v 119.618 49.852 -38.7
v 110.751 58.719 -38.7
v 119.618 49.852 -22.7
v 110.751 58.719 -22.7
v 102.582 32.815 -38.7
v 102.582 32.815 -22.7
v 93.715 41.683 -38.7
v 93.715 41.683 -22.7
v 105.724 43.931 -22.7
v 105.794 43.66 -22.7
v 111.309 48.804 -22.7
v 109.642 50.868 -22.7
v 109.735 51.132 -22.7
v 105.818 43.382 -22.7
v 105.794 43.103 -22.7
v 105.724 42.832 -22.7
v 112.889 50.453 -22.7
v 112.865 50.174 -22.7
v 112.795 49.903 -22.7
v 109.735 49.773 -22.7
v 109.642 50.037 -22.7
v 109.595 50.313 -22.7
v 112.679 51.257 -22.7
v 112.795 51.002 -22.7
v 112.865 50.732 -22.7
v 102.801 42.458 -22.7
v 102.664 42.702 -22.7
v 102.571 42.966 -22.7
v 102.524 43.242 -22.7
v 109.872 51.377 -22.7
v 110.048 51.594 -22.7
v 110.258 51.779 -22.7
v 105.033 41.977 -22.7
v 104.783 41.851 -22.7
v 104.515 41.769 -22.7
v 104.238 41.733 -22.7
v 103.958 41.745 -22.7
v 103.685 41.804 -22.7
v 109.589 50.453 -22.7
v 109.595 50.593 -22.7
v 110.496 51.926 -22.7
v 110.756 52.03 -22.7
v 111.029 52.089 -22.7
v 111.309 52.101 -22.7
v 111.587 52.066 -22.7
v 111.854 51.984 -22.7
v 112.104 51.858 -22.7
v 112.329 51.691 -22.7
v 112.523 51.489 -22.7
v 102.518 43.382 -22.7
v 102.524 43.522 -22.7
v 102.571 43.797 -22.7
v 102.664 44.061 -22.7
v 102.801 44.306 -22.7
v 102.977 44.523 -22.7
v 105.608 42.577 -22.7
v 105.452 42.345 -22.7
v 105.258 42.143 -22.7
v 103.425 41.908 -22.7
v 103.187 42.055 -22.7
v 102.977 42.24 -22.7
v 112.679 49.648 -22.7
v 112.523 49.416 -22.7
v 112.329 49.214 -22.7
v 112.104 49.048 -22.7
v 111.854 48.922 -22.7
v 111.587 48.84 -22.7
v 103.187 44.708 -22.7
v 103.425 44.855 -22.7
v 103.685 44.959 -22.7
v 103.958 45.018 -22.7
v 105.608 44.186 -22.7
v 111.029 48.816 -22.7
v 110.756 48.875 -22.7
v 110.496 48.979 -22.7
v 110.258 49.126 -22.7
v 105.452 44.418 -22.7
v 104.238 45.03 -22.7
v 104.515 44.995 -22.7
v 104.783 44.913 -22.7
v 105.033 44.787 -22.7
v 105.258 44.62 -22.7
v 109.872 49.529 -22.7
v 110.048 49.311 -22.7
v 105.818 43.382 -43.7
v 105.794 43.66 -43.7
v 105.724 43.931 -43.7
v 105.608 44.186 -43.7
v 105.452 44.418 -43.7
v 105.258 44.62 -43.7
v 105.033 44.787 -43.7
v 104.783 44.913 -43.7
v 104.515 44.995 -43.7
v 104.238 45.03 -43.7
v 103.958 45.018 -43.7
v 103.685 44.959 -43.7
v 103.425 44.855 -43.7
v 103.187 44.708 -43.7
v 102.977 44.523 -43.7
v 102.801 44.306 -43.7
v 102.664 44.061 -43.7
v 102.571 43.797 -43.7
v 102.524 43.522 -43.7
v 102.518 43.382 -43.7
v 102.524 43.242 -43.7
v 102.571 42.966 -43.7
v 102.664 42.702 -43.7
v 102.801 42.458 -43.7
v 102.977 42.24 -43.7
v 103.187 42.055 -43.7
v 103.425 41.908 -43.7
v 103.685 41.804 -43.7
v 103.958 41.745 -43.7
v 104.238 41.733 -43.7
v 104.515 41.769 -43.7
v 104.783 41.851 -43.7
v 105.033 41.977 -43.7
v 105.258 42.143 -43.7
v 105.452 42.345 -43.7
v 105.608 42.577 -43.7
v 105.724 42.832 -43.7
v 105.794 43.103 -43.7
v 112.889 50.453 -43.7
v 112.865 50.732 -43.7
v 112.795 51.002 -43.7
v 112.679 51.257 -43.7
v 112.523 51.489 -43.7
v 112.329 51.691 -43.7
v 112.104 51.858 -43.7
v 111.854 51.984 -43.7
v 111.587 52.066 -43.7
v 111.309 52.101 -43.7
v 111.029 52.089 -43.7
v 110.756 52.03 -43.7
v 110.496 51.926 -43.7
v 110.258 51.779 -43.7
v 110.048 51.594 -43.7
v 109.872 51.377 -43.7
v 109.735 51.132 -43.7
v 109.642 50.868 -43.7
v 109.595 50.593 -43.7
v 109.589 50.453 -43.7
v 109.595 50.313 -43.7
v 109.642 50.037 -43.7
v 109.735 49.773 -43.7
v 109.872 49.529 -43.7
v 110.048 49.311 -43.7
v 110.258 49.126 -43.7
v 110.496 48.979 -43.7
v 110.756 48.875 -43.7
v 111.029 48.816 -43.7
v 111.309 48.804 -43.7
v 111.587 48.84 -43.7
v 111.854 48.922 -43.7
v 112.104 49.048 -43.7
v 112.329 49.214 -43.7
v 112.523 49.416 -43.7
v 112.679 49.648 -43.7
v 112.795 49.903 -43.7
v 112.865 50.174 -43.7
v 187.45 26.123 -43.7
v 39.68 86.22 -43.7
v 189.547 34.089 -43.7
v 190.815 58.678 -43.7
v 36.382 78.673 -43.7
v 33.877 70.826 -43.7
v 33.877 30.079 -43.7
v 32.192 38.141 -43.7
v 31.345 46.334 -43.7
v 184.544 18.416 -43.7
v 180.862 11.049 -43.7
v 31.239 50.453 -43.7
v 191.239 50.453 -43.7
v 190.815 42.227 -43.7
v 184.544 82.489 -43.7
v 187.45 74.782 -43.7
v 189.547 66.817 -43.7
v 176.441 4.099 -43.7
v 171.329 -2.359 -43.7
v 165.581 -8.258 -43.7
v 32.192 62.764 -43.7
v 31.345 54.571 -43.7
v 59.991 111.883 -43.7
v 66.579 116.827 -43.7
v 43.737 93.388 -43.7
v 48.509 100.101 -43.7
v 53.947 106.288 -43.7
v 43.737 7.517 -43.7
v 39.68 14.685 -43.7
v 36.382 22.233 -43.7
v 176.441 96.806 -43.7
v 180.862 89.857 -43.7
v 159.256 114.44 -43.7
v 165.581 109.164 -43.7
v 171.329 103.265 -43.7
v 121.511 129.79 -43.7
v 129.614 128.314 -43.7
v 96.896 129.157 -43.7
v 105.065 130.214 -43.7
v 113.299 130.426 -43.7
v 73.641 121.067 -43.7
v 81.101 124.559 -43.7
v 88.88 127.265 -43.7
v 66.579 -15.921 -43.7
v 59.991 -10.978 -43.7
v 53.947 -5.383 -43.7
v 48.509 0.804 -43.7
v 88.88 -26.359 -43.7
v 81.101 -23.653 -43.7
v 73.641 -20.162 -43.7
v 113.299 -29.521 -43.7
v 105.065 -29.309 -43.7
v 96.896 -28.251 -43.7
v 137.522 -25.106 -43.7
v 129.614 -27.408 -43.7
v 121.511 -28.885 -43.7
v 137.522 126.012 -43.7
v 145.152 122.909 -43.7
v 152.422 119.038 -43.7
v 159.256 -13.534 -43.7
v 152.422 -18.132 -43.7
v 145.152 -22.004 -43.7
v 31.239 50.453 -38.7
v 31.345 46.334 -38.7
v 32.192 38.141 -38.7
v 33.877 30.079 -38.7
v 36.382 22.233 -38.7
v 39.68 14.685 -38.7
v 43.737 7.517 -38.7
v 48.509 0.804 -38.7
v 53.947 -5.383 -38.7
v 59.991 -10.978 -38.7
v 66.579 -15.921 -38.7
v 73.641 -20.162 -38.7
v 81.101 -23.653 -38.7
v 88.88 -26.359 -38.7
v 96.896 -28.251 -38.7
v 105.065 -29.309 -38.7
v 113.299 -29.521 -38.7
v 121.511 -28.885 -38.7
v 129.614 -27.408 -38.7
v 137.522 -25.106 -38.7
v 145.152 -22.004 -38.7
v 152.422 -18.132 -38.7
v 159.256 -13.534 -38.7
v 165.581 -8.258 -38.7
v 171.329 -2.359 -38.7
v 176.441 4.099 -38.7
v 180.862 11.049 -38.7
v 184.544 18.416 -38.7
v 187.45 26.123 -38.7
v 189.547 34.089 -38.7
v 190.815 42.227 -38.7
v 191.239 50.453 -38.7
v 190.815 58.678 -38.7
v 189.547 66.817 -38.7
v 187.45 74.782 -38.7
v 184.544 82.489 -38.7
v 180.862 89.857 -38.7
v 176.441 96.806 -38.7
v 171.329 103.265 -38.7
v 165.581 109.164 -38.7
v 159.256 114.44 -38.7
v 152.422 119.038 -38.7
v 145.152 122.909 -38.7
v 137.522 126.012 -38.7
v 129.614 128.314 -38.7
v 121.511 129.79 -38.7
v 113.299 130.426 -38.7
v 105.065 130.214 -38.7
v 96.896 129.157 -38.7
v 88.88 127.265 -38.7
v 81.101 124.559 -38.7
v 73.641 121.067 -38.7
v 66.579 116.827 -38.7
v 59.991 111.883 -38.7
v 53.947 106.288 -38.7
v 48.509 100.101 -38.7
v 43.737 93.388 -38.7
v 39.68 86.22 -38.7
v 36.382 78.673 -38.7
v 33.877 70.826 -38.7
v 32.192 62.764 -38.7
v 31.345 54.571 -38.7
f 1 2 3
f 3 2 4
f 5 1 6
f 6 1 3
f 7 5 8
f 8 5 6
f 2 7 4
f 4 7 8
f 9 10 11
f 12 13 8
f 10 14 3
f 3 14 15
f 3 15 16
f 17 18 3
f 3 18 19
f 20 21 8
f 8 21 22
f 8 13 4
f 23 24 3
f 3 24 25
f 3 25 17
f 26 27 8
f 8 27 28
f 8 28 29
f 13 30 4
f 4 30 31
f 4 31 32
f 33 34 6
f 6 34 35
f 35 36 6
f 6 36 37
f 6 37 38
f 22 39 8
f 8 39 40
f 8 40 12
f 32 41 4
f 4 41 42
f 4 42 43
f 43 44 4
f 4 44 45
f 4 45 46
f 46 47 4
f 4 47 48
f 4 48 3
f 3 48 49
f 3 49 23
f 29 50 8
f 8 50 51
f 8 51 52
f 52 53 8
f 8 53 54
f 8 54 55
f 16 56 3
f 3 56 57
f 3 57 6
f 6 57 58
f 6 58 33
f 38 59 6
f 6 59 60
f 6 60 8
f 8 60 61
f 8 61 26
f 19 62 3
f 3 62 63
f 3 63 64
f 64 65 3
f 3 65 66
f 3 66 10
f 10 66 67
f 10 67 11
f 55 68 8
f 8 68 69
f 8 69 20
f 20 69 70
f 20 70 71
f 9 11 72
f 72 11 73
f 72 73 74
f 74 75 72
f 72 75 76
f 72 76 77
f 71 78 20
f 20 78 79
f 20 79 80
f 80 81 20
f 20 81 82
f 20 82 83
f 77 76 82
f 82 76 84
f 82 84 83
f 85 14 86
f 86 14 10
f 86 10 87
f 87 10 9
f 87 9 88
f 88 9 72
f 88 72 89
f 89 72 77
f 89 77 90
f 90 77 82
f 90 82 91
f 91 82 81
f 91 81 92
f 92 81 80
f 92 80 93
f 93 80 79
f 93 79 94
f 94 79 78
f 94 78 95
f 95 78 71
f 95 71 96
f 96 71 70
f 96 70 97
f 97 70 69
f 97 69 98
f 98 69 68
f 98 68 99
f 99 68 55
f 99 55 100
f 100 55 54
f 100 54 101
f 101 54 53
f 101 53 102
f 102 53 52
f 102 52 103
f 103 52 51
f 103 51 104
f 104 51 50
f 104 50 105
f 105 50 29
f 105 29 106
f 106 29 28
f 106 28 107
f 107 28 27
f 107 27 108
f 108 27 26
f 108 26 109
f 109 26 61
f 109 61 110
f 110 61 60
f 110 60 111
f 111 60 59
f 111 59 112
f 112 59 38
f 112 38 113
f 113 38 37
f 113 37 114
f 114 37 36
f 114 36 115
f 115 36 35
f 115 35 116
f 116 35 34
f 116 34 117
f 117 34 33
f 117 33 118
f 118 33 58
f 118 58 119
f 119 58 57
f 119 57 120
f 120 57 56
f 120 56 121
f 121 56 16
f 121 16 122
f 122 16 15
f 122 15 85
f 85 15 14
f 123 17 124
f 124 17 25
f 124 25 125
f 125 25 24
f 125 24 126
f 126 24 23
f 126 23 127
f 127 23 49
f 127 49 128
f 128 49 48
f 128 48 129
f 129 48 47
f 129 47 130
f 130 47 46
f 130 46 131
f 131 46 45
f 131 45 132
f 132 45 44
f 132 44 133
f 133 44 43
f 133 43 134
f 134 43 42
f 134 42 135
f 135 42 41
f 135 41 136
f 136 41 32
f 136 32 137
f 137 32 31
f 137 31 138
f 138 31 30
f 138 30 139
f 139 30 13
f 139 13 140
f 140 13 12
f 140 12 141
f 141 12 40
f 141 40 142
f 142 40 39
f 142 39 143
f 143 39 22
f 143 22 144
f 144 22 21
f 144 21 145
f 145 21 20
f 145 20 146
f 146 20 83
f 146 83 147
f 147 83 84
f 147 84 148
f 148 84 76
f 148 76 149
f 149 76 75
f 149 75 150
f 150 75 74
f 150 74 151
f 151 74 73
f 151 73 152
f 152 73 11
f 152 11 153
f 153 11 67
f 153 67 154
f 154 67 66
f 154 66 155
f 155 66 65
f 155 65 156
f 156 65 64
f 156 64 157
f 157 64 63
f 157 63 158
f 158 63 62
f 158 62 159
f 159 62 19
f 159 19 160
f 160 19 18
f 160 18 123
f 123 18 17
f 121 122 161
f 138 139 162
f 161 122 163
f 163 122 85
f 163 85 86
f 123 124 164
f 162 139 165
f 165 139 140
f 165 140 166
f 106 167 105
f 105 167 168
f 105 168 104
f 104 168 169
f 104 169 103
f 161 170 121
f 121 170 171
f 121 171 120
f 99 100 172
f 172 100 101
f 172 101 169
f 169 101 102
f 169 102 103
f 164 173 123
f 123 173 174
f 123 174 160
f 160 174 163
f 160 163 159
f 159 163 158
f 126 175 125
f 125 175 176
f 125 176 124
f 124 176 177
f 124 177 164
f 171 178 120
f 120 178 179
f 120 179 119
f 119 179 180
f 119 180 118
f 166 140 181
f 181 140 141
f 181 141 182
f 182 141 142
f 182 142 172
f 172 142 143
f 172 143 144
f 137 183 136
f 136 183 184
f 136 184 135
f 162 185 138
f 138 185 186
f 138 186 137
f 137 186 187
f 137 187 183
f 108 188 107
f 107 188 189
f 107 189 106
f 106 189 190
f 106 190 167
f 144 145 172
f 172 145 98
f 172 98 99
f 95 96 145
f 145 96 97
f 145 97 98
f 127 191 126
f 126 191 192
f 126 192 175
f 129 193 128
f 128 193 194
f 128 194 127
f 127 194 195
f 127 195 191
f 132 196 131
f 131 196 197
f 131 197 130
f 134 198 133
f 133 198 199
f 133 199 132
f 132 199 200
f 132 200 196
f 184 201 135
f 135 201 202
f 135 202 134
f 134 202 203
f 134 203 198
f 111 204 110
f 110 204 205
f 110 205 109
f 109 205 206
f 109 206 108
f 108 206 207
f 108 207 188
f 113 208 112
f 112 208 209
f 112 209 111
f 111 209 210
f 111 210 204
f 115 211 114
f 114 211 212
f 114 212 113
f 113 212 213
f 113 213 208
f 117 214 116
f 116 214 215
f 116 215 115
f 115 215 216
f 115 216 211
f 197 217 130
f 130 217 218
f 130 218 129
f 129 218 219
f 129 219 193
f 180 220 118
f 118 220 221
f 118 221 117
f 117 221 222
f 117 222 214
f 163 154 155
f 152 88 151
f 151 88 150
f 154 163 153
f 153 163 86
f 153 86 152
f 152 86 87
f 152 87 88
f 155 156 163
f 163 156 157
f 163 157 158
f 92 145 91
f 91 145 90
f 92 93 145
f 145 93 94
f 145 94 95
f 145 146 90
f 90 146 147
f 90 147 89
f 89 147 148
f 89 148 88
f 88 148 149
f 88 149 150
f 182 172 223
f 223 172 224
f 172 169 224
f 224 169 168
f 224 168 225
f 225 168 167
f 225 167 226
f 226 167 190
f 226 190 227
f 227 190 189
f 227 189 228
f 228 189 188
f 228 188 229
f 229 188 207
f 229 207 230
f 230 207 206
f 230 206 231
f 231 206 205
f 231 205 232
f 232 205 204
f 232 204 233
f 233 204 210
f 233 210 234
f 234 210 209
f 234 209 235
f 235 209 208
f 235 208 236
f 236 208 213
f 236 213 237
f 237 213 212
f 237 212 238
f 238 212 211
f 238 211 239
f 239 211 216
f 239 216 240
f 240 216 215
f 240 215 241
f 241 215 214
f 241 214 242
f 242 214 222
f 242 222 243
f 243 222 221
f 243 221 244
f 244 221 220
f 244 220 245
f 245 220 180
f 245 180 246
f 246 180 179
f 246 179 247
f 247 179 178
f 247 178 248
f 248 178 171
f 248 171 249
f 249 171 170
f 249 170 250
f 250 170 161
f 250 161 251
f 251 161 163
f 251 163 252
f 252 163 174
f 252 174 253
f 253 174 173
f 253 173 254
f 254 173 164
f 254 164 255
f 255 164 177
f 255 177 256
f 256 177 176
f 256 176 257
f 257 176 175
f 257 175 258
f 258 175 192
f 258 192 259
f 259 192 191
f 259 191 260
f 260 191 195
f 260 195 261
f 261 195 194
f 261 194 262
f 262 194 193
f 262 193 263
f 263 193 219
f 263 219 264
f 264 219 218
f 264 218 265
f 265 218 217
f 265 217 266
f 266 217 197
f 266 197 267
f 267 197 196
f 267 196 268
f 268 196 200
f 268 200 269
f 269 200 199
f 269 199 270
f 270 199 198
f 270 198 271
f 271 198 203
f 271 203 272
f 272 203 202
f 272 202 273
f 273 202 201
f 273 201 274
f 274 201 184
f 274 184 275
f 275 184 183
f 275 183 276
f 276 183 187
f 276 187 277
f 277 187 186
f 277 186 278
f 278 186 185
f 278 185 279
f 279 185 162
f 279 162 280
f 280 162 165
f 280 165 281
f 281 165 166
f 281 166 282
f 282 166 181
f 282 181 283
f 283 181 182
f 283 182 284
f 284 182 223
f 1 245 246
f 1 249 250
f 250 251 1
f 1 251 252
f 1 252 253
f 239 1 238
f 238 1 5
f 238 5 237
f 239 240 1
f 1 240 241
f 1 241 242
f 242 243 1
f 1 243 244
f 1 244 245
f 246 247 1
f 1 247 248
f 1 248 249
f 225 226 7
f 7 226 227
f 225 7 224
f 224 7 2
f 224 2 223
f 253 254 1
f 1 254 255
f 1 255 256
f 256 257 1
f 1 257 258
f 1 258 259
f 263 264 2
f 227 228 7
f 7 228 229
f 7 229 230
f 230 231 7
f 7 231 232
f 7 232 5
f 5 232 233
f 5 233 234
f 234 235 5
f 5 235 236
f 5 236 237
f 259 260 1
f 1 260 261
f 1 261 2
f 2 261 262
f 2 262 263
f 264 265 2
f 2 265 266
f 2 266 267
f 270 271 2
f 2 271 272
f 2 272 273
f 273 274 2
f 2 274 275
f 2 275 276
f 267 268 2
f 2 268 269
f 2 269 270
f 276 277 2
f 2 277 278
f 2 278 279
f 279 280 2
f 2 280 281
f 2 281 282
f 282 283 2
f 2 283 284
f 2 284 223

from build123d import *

# Parameters (mm, degrees)
BOSS_EXTRUDE1_DEPTH = 16
SKETCH3_R           = 1.65
CUT_EXTRUDE1_DEPTH  = 27
SKETCH4_R           = 80
BOSS_EXTRUDE2_DEPTH = 5
SKETCH5_R           = 1.65
CUT_EXTRUDE3_DEPTH  = 5


with BuildPart() as part:
    # Sketch2 → Boss-Extrude1 (new body)
    with BuildSketch(Plane(origin=(0, 0, -22.7), x_dir=(-1, 0, 0), z_dir=(0, 0, -1))):
        Polygon((-119.618145114, 49.851633515), (-102.581939837, 32.815428238), (-93.714762751, 41.682605324), (-110.750968028, 58.718810601), align=None)
    extrude(amount=BOSS_EXTRUDE1_DEPTH)

    # Sketch3 → Cut-Extrude1 (cut)
    with BuildSketch(Plane(origin=(0, 0, -22.7), x_dir=(-1, 0, 0), z_dir=(0, 0, -1))):
        with Locations(Location((-111.238929757, 50.452674279, 0), (0, 0, 180))):
            Circle(SKETCH3_R)
        with Locations(Location((-104.167861945, 43.381606467, 0), (0, 0, 180))):
            Circle(SKETCH3_R)
    extrude(amount=CUT_EXTRUDE1_DEPTH, mode=Mode.SUBTRACT)

    # Sketch4 → Boss-Extrude2 (add)
    with BuildSketch(Plane(origin=(0, 0, -38.7), x_dir=(-1, 0, 0), z_dir=(0, 0, -1))):
        with Locations((-111.238929757, 50.452674279)):
            Circle(SKETCH4_R)
    extrude(amount=BOSS_EXTRUDE2_DEPTH)

    # Sketch5 → Cut-Extrude3 (cut)
    with BuildSketch(Plane(origin=(0, 0, -38.7), x_dir=(-1, 0, 0), z_dir=(0, 0, -1))):
        with Locations((-111.238929757, 50.452674279)):
            Circle(SKETCH5_R)
        with Locations((-104.167861945, 43.381606467)):
            Circle(SKETCH5_R)
    extrude(amount=CUT_EXTRUDE3_DEPTH, mode=Mode.SUBTRACT)


solid = part.part
